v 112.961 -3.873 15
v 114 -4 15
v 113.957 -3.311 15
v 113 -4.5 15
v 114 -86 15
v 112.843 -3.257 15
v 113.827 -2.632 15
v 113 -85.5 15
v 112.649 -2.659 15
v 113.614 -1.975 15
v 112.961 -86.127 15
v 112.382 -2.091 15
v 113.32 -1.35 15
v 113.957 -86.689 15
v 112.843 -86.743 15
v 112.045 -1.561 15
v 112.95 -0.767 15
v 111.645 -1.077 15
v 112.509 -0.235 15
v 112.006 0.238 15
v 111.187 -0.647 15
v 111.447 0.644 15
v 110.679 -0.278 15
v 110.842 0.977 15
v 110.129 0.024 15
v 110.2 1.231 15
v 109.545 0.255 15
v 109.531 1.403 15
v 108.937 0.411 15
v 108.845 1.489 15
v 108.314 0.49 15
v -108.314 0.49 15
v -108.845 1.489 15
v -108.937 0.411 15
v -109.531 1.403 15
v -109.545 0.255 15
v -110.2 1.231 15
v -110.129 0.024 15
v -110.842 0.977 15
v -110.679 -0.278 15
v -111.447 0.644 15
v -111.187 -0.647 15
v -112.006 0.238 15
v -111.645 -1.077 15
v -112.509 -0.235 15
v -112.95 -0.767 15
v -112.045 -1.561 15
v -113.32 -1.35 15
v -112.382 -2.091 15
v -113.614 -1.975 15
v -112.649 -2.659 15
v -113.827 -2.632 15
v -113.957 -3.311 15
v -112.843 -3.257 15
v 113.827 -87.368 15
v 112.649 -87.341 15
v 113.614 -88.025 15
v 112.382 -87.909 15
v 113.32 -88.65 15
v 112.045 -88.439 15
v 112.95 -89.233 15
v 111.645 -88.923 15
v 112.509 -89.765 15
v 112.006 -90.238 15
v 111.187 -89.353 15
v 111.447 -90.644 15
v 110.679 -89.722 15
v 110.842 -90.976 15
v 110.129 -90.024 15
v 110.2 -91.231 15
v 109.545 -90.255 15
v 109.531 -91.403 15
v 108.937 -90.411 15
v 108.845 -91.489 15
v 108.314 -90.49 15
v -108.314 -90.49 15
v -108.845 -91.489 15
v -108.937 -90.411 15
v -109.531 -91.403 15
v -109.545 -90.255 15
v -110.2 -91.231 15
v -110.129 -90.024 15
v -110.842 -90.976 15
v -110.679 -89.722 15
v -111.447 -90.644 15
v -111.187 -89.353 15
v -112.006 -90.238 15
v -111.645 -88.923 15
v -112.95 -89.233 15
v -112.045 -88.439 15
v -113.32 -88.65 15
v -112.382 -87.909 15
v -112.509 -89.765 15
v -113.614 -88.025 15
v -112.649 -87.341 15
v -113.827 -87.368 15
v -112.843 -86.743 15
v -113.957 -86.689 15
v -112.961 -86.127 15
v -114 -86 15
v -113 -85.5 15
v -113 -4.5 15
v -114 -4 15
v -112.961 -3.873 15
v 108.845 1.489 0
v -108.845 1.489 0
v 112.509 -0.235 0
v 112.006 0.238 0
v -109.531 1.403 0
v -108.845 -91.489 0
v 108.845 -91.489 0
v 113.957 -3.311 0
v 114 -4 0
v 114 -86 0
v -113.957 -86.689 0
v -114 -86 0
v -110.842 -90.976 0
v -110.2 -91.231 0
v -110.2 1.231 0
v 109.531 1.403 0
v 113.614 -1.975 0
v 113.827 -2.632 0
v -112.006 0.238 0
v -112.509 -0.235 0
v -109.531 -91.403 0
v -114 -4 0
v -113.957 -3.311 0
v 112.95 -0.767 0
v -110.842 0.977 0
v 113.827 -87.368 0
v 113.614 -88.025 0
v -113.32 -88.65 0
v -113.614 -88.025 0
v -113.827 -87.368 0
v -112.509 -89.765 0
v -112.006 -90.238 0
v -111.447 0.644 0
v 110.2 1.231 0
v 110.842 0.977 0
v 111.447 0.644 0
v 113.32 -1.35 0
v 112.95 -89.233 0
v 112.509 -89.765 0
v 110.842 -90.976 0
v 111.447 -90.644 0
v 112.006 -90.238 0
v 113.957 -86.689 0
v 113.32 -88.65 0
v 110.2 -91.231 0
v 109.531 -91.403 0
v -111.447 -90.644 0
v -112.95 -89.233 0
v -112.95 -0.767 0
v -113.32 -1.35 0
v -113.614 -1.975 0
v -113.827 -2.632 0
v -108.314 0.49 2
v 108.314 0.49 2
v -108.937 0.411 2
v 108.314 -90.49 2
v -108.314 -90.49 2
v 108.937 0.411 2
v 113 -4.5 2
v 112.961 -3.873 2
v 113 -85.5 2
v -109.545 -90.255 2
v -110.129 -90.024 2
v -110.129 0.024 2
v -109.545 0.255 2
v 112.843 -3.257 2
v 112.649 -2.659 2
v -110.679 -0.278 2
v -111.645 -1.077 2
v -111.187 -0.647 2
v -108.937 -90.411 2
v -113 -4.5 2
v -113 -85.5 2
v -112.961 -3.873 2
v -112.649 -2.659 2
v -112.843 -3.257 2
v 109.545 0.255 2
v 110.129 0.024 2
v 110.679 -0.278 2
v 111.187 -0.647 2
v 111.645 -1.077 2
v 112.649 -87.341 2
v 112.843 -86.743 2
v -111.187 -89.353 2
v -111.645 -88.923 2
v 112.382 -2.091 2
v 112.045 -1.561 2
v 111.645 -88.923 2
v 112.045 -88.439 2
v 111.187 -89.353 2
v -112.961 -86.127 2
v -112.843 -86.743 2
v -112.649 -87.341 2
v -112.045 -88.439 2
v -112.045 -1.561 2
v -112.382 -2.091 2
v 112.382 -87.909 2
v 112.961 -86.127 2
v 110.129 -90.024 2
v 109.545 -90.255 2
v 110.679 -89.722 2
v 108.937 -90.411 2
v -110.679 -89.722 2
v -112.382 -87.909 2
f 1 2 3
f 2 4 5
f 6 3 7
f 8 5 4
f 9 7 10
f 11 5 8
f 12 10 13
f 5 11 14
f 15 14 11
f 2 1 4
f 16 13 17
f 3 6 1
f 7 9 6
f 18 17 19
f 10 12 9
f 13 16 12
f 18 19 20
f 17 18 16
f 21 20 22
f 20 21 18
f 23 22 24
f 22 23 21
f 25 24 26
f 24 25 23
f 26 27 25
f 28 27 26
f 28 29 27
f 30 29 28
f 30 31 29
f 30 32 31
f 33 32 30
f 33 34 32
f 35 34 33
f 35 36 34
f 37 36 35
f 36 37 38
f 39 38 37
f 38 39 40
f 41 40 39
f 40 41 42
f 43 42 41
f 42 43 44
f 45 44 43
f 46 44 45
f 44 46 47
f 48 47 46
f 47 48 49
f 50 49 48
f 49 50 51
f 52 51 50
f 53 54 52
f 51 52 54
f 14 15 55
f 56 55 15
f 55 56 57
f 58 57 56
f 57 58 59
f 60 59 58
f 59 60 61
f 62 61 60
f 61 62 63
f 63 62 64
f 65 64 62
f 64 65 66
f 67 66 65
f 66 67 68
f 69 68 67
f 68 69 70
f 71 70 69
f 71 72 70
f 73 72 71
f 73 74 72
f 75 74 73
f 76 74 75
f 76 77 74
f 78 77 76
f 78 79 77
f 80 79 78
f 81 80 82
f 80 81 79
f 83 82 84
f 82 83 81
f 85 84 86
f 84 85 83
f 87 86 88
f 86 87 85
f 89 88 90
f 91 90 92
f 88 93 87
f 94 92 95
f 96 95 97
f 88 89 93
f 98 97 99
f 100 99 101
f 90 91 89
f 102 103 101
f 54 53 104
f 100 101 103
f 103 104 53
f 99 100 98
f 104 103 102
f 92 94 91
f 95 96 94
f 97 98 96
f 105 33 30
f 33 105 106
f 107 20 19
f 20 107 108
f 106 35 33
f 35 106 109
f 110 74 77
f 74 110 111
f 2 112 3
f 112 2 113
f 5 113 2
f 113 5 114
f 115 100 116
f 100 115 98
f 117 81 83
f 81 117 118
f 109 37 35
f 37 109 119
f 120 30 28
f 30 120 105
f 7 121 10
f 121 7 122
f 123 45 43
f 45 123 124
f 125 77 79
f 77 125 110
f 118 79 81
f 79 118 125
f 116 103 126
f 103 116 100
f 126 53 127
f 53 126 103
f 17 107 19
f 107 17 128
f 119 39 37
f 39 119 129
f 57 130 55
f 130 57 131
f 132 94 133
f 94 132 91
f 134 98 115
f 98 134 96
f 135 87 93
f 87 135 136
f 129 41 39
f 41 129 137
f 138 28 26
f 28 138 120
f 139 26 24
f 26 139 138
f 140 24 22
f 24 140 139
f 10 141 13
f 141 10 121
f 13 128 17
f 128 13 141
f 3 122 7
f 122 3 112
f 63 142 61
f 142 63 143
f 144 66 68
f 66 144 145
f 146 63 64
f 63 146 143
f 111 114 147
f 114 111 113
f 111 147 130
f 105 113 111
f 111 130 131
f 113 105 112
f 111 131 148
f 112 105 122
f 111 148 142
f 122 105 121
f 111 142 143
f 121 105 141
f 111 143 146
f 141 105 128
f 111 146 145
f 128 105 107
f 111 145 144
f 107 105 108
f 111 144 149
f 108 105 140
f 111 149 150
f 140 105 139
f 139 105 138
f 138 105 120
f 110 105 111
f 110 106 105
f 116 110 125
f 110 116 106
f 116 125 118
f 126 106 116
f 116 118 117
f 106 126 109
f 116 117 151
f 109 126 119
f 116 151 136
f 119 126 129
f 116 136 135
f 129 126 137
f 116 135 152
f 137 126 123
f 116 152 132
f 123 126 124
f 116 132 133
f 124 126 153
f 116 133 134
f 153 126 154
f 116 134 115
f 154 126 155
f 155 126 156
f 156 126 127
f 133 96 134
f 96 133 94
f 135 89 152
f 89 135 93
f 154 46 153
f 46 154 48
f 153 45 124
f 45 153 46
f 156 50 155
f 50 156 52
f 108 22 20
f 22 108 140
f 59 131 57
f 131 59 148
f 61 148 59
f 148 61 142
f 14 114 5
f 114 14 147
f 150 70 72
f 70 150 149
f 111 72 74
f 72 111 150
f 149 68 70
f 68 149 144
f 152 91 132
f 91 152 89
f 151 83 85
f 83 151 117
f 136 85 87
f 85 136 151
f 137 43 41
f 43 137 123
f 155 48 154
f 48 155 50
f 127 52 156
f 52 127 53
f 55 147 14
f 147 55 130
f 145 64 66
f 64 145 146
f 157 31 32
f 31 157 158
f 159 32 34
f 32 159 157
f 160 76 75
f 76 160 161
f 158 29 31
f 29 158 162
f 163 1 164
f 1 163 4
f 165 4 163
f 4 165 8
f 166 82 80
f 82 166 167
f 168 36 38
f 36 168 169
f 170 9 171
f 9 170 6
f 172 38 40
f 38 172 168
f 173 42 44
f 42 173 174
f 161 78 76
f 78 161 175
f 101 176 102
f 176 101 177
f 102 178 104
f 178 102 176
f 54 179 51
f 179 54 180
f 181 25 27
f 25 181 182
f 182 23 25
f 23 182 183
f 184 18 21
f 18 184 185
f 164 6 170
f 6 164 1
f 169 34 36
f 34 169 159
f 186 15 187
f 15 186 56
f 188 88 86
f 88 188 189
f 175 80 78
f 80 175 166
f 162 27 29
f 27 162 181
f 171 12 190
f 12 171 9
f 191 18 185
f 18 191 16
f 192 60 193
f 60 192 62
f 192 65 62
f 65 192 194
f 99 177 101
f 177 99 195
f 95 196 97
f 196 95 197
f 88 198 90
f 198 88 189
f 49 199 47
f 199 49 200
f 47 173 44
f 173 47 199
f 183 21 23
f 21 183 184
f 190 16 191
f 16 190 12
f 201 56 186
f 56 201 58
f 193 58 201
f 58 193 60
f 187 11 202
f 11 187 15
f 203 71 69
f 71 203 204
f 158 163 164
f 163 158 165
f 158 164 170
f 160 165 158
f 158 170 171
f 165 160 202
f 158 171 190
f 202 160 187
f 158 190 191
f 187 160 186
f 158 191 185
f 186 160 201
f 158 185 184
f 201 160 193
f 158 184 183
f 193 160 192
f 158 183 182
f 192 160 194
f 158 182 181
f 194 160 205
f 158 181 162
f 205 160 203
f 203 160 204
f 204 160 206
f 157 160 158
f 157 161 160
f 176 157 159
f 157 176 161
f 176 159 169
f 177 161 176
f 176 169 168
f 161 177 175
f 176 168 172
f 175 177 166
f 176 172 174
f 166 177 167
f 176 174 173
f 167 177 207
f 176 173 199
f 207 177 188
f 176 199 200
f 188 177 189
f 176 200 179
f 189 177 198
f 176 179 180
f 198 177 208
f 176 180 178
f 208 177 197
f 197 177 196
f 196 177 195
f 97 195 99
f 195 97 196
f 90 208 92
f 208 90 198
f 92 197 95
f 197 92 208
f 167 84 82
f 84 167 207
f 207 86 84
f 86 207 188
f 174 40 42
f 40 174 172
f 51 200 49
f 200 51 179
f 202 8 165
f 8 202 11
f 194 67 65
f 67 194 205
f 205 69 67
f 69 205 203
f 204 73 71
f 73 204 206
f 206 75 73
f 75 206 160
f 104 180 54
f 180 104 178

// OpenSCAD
$fn = 50;


difference() {
	union() {
		translate(v = [0, -45.0000000000, 0]) {
			hull() {
				translate(v = [-108.5000000000, 41.0000000000, 0]) {
					cylinder(h = 15, r = 5.5000000000);
				}
				translate(v = [108.5000000000, 41.0000000000, 0]) {
					cylinder(h = 15, r = 5.5000000000);
				}
				translate(v = [-108.5000000000, -41.0000000000, 0]) {
					cylinder(h = 15, r = 5.5000000000);
				}
				translate(v = [108.5000000000, -41.0000000000, 0]) {
					cylinder(h = 15, r = 5.5000000000);
				}
			}
		}
	}
	union() {
		translate(v = [0, -45.0000000000, 2]) {
			hull() {
				translate(v = [-108.0000000000, 40.5000000000, 0]) {
					cylinder(h = 30, r = 5);
				}
				translate(v = [108.0000000000, 40.5000000000, 0]) {
					cylinder(h = 30, r = 5);
				}
				translate(v = [-108.0000000000, -40.5000000000, 0]) {
					cylinder(h = 30, r = 5);
				}
				translate(v = [108.0000000000, -40.5000000000, 0]) {
					cylinder(h = 30, r = 5);
				}
			}
		}
	}
}
